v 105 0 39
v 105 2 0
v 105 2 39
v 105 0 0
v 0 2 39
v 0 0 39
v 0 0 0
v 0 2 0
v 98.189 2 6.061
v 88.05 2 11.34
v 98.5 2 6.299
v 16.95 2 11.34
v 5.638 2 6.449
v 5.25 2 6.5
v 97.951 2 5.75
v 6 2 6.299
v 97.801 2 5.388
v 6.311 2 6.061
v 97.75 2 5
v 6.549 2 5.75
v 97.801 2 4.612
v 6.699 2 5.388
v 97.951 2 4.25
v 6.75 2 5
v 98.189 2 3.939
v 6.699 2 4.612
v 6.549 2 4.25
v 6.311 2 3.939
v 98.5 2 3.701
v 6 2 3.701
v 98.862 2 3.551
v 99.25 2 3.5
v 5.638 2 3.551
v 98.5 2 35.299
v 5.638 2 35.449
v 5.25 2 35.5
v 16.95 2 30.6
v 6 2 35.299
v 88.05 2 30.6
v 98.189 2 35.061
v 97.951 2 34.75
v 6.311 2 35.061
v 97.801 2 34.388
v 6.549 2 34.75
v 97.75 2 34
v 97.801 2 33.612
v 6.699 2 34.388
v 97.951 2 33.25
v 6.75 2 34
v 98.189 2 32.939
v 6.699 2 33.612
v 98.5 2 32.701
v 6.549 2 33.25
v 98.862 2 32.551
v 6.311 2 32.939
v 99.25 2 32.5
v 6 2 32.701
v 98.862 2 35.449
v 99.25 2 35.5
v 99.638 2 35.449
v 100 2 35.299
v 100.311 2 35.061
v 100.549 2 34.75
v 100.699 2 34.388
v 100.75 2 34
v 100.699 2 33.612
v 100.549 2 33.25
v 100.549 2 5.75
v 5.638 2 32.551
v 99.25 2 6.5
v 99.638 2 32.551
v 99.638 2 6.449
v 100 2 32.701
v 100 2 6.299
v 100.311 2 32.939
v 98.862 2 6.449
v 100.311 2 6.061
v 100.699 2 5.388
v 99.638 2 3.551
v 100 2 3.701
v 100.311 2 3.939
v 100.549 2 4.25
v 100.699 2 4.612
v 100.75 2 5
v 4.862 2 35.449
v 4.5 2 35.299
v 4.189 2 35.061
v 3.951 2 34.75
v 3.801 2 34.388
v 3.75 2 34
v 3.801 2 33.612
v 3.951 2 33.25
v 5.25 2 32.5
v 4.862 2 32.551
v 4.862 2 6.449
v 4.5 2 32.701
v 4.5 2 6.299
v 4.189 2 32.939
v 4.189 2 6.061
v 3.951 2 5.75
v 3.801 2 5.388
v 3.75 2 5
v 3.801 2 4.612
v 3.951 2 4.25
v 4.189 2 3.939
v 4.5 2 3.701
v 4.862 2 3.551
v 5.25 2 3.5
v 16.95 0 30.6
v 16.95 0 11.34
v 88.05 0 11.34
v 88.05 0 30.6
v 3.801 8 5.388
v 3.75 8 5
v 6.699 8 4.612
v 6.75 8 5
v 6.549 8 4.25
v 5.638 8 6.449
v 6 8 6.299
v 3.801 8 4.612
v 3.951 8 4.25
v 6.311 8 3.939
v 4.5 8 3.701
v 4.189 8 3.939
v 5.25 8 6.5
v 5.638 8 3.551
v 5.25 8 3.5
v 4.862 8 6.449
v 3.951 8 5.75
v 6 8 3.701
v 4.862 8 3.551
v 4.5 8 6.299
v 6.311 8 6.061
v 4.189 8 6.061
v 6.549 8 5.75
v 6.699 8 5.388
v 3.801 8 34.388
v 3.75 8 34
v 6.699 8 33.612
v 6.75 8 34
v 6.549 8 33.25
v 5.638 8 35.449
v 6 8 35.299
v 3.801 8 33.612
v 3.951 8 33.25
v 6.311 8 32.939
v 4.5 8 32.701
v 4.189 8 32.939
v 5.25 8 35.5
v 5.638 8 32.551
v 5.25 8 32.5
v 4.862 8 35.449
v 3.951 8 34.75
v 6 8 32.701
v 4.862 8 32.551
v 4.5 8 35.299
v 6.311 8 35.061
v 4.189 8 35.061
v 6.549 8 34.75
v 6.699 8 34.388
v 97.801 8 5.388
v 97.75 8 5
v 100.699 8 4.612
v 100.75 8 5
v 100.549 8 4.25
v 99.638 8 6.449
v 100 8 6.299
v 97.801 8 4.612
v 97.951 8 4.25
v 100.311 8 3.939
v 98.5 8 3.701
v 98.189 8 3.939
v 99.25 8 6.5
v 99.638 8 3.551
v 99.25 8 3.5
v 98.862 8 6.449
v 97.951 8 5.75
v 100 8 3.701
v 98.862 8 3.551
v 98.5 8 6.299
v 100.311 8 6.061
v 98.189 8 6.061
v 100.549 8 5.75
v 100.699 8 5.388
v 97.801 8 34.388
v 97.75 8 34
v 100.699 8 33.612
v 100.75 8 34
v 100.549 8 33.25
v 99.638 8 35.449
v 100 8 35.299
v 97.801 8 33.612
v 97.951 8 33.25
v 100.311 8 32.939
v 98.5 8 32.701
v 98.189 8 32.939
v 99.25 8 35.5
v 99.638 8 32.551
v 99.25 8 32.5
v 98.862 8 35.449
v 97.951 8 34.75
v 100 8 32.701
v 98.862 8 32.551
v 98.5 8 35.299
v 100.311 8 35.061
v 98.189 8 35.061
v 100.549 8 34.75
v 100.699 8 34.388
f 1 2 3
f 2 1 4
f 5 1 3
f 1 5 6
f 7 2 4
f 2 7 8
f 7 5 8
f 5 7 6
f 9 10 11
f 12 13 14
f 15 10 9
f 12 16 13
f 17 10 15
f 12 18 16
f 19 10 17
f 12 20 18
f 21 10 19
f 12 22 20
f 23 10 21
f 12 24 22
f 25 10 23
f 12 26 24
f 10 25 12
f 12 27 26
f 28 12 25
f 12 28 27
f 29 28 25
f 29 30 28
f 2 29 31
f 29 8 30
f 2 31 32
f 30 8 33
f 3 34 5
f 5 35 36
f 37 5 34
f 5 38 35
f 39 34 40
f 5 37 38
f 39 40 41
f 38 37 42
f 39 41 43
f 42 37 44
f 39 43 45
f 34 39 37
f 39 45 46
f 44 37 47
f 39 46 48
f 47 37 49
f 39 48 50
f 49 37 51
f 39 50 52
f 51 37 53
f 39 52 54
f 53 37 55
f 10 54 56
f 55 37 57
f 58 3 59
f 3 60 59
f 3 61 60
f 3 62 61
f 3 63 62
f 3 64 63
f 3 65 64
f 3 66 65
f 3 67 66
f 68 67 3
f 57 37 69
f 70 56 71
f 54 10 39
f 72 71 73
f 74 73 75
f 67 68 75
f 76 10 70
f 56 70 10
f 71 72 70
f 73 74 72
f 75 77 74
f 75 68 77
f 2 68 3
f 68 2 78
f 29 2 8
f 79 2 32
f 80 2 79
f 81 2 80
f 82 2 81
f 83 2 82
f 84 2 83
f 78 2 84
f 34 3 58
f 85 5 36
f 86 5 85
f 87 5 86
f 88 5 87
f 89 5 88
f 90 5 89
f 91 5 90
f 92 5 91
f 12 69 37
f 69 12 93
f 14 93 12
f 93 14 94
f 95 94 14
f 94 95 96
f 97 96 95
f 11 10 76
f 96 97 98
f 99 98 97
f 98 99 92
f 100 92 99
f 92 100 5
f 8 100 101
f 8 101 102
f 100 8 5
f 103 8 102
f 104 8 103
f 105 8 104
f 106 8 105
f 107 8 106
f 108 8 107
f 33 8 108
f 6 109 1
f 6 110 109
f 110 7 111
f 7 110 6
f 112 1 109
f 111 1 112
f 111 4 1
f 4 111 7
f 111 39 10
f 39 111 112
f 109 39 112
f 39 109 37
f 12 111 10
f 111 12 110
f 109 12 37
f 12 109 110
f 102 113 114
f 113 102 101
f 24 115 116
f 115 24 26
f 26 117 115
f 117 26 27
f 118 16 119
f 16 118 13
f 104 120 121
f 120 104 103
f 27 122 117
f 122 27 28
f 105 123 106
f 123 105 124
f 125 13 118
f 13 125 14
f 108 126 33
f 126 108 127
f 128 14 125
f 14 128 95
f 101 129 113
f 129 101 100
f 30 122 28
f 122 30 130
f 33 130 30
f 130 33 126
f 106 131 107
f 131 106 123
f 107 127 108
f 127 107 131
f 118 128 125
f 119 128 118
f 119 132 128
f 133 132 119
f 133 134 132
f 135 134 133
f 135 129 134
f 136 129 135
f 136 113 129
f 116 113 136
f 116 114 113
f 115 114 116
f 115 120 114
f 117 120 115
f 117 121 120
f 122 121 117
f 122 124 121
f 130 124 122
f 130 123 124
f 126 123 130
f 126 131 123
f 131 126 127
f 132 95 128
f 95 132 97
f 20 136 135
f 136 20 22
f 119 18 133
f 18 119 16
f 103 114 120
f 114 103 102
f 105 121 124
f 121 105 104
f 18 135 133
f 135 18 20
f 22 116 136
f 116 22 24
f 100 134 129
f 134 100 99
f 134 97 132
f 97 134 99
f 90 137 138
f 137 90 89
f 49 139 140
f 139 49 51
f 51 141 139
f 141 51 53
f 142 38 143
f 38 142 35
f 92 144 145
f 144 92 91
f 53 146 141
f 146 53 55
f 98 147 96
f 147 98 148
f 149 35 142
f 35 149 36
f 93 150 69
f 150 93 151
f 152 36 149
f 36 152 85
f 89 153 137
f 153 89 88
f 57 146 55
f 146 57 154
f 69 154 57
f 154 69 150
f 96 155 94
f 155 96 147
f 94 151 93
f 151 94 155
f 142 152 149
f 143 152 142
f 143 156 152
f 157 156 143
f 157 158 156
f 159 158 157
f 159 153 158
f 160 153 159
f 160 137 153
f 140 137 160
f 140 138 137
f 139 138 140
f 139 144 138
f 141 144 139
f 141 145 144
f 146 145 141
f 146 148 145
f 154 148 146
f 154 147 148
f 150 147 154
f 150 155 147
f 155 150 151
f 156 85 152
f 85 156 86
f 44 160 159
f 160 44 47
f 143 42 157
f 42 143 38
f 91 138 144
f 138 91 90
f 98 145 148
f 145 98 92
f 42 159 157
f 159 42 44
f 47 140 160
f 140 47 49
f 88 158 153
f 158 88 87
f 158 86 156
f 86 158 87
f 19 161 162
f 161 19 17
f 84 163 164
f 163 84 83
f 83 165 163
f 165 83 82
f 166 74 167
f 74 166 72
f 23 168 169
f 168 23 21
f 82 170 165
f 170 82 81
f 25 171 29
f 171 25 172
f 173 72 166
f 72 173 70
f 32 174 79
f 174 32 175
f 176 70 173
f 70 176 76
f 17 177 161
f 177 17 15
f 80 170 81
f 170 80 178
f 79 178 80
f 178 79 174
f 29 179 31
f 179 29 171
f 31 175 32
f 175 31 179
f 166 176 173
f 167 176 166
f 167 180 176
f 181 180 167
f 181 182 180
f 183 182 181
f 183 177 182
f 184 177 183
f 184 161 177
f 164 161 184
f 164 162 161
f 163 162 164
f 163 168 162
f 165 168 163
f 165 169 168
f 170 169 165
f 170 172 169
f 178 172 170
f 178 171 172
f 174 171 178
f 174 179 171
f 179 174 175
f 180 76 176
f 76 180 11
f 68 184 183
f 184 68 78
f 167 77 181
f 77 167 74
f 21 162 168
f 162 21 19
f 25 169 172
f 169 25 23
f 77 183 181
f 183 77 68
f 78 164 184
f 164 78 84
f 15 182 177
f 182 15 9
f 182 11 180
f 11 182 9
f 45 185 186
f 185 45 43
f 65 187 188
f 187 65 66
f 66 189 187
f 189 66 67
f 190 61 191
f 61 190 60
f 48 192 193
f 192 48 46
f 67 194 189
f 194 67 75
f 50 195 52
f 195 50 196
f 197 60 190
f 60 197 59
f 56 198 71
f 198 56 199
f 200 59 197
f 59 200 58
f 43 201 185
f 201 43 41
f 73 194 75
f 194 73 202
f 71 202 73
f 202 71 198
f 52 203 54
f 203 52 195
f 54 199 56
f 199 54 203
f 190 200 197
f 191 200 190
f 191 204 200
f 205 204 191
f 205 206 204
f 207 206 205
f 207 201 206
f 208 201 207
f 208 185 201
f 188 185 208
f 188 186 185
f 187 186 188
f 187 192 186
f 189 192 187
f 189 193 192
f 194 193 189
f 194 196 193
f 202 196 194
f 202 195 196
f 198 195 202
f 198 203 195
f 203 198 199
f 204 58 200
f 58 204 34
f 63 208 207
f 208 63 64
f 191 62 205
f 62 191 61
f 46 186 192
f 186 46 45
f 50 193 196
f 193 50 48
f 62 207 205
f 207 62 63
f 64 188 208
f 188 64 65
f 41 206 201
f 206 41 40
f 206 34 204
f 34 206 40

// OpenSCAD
$fa = 1;
$fs = 0.4;

difference(){
    cube([105,2,39]);
    translate([16.95,0,11.34])
        cube([71.10,2,19.26]);
}
rotate([270,0,0])
    translate([5.25,-5,2])
        cylinder(h=6,r=1.5);
rotate([270,0,0])
    translate([5.25,,-34,2])
        cylinder(h=6,r=1.5);
rotate([270,0,0])
    translate([99.25,-5,2])
        cylinder(h=6,r=1.5);
rotate([270,0,0])
    translate([99.25,-34,2])
        cylinder(h=6,r=1.5);
